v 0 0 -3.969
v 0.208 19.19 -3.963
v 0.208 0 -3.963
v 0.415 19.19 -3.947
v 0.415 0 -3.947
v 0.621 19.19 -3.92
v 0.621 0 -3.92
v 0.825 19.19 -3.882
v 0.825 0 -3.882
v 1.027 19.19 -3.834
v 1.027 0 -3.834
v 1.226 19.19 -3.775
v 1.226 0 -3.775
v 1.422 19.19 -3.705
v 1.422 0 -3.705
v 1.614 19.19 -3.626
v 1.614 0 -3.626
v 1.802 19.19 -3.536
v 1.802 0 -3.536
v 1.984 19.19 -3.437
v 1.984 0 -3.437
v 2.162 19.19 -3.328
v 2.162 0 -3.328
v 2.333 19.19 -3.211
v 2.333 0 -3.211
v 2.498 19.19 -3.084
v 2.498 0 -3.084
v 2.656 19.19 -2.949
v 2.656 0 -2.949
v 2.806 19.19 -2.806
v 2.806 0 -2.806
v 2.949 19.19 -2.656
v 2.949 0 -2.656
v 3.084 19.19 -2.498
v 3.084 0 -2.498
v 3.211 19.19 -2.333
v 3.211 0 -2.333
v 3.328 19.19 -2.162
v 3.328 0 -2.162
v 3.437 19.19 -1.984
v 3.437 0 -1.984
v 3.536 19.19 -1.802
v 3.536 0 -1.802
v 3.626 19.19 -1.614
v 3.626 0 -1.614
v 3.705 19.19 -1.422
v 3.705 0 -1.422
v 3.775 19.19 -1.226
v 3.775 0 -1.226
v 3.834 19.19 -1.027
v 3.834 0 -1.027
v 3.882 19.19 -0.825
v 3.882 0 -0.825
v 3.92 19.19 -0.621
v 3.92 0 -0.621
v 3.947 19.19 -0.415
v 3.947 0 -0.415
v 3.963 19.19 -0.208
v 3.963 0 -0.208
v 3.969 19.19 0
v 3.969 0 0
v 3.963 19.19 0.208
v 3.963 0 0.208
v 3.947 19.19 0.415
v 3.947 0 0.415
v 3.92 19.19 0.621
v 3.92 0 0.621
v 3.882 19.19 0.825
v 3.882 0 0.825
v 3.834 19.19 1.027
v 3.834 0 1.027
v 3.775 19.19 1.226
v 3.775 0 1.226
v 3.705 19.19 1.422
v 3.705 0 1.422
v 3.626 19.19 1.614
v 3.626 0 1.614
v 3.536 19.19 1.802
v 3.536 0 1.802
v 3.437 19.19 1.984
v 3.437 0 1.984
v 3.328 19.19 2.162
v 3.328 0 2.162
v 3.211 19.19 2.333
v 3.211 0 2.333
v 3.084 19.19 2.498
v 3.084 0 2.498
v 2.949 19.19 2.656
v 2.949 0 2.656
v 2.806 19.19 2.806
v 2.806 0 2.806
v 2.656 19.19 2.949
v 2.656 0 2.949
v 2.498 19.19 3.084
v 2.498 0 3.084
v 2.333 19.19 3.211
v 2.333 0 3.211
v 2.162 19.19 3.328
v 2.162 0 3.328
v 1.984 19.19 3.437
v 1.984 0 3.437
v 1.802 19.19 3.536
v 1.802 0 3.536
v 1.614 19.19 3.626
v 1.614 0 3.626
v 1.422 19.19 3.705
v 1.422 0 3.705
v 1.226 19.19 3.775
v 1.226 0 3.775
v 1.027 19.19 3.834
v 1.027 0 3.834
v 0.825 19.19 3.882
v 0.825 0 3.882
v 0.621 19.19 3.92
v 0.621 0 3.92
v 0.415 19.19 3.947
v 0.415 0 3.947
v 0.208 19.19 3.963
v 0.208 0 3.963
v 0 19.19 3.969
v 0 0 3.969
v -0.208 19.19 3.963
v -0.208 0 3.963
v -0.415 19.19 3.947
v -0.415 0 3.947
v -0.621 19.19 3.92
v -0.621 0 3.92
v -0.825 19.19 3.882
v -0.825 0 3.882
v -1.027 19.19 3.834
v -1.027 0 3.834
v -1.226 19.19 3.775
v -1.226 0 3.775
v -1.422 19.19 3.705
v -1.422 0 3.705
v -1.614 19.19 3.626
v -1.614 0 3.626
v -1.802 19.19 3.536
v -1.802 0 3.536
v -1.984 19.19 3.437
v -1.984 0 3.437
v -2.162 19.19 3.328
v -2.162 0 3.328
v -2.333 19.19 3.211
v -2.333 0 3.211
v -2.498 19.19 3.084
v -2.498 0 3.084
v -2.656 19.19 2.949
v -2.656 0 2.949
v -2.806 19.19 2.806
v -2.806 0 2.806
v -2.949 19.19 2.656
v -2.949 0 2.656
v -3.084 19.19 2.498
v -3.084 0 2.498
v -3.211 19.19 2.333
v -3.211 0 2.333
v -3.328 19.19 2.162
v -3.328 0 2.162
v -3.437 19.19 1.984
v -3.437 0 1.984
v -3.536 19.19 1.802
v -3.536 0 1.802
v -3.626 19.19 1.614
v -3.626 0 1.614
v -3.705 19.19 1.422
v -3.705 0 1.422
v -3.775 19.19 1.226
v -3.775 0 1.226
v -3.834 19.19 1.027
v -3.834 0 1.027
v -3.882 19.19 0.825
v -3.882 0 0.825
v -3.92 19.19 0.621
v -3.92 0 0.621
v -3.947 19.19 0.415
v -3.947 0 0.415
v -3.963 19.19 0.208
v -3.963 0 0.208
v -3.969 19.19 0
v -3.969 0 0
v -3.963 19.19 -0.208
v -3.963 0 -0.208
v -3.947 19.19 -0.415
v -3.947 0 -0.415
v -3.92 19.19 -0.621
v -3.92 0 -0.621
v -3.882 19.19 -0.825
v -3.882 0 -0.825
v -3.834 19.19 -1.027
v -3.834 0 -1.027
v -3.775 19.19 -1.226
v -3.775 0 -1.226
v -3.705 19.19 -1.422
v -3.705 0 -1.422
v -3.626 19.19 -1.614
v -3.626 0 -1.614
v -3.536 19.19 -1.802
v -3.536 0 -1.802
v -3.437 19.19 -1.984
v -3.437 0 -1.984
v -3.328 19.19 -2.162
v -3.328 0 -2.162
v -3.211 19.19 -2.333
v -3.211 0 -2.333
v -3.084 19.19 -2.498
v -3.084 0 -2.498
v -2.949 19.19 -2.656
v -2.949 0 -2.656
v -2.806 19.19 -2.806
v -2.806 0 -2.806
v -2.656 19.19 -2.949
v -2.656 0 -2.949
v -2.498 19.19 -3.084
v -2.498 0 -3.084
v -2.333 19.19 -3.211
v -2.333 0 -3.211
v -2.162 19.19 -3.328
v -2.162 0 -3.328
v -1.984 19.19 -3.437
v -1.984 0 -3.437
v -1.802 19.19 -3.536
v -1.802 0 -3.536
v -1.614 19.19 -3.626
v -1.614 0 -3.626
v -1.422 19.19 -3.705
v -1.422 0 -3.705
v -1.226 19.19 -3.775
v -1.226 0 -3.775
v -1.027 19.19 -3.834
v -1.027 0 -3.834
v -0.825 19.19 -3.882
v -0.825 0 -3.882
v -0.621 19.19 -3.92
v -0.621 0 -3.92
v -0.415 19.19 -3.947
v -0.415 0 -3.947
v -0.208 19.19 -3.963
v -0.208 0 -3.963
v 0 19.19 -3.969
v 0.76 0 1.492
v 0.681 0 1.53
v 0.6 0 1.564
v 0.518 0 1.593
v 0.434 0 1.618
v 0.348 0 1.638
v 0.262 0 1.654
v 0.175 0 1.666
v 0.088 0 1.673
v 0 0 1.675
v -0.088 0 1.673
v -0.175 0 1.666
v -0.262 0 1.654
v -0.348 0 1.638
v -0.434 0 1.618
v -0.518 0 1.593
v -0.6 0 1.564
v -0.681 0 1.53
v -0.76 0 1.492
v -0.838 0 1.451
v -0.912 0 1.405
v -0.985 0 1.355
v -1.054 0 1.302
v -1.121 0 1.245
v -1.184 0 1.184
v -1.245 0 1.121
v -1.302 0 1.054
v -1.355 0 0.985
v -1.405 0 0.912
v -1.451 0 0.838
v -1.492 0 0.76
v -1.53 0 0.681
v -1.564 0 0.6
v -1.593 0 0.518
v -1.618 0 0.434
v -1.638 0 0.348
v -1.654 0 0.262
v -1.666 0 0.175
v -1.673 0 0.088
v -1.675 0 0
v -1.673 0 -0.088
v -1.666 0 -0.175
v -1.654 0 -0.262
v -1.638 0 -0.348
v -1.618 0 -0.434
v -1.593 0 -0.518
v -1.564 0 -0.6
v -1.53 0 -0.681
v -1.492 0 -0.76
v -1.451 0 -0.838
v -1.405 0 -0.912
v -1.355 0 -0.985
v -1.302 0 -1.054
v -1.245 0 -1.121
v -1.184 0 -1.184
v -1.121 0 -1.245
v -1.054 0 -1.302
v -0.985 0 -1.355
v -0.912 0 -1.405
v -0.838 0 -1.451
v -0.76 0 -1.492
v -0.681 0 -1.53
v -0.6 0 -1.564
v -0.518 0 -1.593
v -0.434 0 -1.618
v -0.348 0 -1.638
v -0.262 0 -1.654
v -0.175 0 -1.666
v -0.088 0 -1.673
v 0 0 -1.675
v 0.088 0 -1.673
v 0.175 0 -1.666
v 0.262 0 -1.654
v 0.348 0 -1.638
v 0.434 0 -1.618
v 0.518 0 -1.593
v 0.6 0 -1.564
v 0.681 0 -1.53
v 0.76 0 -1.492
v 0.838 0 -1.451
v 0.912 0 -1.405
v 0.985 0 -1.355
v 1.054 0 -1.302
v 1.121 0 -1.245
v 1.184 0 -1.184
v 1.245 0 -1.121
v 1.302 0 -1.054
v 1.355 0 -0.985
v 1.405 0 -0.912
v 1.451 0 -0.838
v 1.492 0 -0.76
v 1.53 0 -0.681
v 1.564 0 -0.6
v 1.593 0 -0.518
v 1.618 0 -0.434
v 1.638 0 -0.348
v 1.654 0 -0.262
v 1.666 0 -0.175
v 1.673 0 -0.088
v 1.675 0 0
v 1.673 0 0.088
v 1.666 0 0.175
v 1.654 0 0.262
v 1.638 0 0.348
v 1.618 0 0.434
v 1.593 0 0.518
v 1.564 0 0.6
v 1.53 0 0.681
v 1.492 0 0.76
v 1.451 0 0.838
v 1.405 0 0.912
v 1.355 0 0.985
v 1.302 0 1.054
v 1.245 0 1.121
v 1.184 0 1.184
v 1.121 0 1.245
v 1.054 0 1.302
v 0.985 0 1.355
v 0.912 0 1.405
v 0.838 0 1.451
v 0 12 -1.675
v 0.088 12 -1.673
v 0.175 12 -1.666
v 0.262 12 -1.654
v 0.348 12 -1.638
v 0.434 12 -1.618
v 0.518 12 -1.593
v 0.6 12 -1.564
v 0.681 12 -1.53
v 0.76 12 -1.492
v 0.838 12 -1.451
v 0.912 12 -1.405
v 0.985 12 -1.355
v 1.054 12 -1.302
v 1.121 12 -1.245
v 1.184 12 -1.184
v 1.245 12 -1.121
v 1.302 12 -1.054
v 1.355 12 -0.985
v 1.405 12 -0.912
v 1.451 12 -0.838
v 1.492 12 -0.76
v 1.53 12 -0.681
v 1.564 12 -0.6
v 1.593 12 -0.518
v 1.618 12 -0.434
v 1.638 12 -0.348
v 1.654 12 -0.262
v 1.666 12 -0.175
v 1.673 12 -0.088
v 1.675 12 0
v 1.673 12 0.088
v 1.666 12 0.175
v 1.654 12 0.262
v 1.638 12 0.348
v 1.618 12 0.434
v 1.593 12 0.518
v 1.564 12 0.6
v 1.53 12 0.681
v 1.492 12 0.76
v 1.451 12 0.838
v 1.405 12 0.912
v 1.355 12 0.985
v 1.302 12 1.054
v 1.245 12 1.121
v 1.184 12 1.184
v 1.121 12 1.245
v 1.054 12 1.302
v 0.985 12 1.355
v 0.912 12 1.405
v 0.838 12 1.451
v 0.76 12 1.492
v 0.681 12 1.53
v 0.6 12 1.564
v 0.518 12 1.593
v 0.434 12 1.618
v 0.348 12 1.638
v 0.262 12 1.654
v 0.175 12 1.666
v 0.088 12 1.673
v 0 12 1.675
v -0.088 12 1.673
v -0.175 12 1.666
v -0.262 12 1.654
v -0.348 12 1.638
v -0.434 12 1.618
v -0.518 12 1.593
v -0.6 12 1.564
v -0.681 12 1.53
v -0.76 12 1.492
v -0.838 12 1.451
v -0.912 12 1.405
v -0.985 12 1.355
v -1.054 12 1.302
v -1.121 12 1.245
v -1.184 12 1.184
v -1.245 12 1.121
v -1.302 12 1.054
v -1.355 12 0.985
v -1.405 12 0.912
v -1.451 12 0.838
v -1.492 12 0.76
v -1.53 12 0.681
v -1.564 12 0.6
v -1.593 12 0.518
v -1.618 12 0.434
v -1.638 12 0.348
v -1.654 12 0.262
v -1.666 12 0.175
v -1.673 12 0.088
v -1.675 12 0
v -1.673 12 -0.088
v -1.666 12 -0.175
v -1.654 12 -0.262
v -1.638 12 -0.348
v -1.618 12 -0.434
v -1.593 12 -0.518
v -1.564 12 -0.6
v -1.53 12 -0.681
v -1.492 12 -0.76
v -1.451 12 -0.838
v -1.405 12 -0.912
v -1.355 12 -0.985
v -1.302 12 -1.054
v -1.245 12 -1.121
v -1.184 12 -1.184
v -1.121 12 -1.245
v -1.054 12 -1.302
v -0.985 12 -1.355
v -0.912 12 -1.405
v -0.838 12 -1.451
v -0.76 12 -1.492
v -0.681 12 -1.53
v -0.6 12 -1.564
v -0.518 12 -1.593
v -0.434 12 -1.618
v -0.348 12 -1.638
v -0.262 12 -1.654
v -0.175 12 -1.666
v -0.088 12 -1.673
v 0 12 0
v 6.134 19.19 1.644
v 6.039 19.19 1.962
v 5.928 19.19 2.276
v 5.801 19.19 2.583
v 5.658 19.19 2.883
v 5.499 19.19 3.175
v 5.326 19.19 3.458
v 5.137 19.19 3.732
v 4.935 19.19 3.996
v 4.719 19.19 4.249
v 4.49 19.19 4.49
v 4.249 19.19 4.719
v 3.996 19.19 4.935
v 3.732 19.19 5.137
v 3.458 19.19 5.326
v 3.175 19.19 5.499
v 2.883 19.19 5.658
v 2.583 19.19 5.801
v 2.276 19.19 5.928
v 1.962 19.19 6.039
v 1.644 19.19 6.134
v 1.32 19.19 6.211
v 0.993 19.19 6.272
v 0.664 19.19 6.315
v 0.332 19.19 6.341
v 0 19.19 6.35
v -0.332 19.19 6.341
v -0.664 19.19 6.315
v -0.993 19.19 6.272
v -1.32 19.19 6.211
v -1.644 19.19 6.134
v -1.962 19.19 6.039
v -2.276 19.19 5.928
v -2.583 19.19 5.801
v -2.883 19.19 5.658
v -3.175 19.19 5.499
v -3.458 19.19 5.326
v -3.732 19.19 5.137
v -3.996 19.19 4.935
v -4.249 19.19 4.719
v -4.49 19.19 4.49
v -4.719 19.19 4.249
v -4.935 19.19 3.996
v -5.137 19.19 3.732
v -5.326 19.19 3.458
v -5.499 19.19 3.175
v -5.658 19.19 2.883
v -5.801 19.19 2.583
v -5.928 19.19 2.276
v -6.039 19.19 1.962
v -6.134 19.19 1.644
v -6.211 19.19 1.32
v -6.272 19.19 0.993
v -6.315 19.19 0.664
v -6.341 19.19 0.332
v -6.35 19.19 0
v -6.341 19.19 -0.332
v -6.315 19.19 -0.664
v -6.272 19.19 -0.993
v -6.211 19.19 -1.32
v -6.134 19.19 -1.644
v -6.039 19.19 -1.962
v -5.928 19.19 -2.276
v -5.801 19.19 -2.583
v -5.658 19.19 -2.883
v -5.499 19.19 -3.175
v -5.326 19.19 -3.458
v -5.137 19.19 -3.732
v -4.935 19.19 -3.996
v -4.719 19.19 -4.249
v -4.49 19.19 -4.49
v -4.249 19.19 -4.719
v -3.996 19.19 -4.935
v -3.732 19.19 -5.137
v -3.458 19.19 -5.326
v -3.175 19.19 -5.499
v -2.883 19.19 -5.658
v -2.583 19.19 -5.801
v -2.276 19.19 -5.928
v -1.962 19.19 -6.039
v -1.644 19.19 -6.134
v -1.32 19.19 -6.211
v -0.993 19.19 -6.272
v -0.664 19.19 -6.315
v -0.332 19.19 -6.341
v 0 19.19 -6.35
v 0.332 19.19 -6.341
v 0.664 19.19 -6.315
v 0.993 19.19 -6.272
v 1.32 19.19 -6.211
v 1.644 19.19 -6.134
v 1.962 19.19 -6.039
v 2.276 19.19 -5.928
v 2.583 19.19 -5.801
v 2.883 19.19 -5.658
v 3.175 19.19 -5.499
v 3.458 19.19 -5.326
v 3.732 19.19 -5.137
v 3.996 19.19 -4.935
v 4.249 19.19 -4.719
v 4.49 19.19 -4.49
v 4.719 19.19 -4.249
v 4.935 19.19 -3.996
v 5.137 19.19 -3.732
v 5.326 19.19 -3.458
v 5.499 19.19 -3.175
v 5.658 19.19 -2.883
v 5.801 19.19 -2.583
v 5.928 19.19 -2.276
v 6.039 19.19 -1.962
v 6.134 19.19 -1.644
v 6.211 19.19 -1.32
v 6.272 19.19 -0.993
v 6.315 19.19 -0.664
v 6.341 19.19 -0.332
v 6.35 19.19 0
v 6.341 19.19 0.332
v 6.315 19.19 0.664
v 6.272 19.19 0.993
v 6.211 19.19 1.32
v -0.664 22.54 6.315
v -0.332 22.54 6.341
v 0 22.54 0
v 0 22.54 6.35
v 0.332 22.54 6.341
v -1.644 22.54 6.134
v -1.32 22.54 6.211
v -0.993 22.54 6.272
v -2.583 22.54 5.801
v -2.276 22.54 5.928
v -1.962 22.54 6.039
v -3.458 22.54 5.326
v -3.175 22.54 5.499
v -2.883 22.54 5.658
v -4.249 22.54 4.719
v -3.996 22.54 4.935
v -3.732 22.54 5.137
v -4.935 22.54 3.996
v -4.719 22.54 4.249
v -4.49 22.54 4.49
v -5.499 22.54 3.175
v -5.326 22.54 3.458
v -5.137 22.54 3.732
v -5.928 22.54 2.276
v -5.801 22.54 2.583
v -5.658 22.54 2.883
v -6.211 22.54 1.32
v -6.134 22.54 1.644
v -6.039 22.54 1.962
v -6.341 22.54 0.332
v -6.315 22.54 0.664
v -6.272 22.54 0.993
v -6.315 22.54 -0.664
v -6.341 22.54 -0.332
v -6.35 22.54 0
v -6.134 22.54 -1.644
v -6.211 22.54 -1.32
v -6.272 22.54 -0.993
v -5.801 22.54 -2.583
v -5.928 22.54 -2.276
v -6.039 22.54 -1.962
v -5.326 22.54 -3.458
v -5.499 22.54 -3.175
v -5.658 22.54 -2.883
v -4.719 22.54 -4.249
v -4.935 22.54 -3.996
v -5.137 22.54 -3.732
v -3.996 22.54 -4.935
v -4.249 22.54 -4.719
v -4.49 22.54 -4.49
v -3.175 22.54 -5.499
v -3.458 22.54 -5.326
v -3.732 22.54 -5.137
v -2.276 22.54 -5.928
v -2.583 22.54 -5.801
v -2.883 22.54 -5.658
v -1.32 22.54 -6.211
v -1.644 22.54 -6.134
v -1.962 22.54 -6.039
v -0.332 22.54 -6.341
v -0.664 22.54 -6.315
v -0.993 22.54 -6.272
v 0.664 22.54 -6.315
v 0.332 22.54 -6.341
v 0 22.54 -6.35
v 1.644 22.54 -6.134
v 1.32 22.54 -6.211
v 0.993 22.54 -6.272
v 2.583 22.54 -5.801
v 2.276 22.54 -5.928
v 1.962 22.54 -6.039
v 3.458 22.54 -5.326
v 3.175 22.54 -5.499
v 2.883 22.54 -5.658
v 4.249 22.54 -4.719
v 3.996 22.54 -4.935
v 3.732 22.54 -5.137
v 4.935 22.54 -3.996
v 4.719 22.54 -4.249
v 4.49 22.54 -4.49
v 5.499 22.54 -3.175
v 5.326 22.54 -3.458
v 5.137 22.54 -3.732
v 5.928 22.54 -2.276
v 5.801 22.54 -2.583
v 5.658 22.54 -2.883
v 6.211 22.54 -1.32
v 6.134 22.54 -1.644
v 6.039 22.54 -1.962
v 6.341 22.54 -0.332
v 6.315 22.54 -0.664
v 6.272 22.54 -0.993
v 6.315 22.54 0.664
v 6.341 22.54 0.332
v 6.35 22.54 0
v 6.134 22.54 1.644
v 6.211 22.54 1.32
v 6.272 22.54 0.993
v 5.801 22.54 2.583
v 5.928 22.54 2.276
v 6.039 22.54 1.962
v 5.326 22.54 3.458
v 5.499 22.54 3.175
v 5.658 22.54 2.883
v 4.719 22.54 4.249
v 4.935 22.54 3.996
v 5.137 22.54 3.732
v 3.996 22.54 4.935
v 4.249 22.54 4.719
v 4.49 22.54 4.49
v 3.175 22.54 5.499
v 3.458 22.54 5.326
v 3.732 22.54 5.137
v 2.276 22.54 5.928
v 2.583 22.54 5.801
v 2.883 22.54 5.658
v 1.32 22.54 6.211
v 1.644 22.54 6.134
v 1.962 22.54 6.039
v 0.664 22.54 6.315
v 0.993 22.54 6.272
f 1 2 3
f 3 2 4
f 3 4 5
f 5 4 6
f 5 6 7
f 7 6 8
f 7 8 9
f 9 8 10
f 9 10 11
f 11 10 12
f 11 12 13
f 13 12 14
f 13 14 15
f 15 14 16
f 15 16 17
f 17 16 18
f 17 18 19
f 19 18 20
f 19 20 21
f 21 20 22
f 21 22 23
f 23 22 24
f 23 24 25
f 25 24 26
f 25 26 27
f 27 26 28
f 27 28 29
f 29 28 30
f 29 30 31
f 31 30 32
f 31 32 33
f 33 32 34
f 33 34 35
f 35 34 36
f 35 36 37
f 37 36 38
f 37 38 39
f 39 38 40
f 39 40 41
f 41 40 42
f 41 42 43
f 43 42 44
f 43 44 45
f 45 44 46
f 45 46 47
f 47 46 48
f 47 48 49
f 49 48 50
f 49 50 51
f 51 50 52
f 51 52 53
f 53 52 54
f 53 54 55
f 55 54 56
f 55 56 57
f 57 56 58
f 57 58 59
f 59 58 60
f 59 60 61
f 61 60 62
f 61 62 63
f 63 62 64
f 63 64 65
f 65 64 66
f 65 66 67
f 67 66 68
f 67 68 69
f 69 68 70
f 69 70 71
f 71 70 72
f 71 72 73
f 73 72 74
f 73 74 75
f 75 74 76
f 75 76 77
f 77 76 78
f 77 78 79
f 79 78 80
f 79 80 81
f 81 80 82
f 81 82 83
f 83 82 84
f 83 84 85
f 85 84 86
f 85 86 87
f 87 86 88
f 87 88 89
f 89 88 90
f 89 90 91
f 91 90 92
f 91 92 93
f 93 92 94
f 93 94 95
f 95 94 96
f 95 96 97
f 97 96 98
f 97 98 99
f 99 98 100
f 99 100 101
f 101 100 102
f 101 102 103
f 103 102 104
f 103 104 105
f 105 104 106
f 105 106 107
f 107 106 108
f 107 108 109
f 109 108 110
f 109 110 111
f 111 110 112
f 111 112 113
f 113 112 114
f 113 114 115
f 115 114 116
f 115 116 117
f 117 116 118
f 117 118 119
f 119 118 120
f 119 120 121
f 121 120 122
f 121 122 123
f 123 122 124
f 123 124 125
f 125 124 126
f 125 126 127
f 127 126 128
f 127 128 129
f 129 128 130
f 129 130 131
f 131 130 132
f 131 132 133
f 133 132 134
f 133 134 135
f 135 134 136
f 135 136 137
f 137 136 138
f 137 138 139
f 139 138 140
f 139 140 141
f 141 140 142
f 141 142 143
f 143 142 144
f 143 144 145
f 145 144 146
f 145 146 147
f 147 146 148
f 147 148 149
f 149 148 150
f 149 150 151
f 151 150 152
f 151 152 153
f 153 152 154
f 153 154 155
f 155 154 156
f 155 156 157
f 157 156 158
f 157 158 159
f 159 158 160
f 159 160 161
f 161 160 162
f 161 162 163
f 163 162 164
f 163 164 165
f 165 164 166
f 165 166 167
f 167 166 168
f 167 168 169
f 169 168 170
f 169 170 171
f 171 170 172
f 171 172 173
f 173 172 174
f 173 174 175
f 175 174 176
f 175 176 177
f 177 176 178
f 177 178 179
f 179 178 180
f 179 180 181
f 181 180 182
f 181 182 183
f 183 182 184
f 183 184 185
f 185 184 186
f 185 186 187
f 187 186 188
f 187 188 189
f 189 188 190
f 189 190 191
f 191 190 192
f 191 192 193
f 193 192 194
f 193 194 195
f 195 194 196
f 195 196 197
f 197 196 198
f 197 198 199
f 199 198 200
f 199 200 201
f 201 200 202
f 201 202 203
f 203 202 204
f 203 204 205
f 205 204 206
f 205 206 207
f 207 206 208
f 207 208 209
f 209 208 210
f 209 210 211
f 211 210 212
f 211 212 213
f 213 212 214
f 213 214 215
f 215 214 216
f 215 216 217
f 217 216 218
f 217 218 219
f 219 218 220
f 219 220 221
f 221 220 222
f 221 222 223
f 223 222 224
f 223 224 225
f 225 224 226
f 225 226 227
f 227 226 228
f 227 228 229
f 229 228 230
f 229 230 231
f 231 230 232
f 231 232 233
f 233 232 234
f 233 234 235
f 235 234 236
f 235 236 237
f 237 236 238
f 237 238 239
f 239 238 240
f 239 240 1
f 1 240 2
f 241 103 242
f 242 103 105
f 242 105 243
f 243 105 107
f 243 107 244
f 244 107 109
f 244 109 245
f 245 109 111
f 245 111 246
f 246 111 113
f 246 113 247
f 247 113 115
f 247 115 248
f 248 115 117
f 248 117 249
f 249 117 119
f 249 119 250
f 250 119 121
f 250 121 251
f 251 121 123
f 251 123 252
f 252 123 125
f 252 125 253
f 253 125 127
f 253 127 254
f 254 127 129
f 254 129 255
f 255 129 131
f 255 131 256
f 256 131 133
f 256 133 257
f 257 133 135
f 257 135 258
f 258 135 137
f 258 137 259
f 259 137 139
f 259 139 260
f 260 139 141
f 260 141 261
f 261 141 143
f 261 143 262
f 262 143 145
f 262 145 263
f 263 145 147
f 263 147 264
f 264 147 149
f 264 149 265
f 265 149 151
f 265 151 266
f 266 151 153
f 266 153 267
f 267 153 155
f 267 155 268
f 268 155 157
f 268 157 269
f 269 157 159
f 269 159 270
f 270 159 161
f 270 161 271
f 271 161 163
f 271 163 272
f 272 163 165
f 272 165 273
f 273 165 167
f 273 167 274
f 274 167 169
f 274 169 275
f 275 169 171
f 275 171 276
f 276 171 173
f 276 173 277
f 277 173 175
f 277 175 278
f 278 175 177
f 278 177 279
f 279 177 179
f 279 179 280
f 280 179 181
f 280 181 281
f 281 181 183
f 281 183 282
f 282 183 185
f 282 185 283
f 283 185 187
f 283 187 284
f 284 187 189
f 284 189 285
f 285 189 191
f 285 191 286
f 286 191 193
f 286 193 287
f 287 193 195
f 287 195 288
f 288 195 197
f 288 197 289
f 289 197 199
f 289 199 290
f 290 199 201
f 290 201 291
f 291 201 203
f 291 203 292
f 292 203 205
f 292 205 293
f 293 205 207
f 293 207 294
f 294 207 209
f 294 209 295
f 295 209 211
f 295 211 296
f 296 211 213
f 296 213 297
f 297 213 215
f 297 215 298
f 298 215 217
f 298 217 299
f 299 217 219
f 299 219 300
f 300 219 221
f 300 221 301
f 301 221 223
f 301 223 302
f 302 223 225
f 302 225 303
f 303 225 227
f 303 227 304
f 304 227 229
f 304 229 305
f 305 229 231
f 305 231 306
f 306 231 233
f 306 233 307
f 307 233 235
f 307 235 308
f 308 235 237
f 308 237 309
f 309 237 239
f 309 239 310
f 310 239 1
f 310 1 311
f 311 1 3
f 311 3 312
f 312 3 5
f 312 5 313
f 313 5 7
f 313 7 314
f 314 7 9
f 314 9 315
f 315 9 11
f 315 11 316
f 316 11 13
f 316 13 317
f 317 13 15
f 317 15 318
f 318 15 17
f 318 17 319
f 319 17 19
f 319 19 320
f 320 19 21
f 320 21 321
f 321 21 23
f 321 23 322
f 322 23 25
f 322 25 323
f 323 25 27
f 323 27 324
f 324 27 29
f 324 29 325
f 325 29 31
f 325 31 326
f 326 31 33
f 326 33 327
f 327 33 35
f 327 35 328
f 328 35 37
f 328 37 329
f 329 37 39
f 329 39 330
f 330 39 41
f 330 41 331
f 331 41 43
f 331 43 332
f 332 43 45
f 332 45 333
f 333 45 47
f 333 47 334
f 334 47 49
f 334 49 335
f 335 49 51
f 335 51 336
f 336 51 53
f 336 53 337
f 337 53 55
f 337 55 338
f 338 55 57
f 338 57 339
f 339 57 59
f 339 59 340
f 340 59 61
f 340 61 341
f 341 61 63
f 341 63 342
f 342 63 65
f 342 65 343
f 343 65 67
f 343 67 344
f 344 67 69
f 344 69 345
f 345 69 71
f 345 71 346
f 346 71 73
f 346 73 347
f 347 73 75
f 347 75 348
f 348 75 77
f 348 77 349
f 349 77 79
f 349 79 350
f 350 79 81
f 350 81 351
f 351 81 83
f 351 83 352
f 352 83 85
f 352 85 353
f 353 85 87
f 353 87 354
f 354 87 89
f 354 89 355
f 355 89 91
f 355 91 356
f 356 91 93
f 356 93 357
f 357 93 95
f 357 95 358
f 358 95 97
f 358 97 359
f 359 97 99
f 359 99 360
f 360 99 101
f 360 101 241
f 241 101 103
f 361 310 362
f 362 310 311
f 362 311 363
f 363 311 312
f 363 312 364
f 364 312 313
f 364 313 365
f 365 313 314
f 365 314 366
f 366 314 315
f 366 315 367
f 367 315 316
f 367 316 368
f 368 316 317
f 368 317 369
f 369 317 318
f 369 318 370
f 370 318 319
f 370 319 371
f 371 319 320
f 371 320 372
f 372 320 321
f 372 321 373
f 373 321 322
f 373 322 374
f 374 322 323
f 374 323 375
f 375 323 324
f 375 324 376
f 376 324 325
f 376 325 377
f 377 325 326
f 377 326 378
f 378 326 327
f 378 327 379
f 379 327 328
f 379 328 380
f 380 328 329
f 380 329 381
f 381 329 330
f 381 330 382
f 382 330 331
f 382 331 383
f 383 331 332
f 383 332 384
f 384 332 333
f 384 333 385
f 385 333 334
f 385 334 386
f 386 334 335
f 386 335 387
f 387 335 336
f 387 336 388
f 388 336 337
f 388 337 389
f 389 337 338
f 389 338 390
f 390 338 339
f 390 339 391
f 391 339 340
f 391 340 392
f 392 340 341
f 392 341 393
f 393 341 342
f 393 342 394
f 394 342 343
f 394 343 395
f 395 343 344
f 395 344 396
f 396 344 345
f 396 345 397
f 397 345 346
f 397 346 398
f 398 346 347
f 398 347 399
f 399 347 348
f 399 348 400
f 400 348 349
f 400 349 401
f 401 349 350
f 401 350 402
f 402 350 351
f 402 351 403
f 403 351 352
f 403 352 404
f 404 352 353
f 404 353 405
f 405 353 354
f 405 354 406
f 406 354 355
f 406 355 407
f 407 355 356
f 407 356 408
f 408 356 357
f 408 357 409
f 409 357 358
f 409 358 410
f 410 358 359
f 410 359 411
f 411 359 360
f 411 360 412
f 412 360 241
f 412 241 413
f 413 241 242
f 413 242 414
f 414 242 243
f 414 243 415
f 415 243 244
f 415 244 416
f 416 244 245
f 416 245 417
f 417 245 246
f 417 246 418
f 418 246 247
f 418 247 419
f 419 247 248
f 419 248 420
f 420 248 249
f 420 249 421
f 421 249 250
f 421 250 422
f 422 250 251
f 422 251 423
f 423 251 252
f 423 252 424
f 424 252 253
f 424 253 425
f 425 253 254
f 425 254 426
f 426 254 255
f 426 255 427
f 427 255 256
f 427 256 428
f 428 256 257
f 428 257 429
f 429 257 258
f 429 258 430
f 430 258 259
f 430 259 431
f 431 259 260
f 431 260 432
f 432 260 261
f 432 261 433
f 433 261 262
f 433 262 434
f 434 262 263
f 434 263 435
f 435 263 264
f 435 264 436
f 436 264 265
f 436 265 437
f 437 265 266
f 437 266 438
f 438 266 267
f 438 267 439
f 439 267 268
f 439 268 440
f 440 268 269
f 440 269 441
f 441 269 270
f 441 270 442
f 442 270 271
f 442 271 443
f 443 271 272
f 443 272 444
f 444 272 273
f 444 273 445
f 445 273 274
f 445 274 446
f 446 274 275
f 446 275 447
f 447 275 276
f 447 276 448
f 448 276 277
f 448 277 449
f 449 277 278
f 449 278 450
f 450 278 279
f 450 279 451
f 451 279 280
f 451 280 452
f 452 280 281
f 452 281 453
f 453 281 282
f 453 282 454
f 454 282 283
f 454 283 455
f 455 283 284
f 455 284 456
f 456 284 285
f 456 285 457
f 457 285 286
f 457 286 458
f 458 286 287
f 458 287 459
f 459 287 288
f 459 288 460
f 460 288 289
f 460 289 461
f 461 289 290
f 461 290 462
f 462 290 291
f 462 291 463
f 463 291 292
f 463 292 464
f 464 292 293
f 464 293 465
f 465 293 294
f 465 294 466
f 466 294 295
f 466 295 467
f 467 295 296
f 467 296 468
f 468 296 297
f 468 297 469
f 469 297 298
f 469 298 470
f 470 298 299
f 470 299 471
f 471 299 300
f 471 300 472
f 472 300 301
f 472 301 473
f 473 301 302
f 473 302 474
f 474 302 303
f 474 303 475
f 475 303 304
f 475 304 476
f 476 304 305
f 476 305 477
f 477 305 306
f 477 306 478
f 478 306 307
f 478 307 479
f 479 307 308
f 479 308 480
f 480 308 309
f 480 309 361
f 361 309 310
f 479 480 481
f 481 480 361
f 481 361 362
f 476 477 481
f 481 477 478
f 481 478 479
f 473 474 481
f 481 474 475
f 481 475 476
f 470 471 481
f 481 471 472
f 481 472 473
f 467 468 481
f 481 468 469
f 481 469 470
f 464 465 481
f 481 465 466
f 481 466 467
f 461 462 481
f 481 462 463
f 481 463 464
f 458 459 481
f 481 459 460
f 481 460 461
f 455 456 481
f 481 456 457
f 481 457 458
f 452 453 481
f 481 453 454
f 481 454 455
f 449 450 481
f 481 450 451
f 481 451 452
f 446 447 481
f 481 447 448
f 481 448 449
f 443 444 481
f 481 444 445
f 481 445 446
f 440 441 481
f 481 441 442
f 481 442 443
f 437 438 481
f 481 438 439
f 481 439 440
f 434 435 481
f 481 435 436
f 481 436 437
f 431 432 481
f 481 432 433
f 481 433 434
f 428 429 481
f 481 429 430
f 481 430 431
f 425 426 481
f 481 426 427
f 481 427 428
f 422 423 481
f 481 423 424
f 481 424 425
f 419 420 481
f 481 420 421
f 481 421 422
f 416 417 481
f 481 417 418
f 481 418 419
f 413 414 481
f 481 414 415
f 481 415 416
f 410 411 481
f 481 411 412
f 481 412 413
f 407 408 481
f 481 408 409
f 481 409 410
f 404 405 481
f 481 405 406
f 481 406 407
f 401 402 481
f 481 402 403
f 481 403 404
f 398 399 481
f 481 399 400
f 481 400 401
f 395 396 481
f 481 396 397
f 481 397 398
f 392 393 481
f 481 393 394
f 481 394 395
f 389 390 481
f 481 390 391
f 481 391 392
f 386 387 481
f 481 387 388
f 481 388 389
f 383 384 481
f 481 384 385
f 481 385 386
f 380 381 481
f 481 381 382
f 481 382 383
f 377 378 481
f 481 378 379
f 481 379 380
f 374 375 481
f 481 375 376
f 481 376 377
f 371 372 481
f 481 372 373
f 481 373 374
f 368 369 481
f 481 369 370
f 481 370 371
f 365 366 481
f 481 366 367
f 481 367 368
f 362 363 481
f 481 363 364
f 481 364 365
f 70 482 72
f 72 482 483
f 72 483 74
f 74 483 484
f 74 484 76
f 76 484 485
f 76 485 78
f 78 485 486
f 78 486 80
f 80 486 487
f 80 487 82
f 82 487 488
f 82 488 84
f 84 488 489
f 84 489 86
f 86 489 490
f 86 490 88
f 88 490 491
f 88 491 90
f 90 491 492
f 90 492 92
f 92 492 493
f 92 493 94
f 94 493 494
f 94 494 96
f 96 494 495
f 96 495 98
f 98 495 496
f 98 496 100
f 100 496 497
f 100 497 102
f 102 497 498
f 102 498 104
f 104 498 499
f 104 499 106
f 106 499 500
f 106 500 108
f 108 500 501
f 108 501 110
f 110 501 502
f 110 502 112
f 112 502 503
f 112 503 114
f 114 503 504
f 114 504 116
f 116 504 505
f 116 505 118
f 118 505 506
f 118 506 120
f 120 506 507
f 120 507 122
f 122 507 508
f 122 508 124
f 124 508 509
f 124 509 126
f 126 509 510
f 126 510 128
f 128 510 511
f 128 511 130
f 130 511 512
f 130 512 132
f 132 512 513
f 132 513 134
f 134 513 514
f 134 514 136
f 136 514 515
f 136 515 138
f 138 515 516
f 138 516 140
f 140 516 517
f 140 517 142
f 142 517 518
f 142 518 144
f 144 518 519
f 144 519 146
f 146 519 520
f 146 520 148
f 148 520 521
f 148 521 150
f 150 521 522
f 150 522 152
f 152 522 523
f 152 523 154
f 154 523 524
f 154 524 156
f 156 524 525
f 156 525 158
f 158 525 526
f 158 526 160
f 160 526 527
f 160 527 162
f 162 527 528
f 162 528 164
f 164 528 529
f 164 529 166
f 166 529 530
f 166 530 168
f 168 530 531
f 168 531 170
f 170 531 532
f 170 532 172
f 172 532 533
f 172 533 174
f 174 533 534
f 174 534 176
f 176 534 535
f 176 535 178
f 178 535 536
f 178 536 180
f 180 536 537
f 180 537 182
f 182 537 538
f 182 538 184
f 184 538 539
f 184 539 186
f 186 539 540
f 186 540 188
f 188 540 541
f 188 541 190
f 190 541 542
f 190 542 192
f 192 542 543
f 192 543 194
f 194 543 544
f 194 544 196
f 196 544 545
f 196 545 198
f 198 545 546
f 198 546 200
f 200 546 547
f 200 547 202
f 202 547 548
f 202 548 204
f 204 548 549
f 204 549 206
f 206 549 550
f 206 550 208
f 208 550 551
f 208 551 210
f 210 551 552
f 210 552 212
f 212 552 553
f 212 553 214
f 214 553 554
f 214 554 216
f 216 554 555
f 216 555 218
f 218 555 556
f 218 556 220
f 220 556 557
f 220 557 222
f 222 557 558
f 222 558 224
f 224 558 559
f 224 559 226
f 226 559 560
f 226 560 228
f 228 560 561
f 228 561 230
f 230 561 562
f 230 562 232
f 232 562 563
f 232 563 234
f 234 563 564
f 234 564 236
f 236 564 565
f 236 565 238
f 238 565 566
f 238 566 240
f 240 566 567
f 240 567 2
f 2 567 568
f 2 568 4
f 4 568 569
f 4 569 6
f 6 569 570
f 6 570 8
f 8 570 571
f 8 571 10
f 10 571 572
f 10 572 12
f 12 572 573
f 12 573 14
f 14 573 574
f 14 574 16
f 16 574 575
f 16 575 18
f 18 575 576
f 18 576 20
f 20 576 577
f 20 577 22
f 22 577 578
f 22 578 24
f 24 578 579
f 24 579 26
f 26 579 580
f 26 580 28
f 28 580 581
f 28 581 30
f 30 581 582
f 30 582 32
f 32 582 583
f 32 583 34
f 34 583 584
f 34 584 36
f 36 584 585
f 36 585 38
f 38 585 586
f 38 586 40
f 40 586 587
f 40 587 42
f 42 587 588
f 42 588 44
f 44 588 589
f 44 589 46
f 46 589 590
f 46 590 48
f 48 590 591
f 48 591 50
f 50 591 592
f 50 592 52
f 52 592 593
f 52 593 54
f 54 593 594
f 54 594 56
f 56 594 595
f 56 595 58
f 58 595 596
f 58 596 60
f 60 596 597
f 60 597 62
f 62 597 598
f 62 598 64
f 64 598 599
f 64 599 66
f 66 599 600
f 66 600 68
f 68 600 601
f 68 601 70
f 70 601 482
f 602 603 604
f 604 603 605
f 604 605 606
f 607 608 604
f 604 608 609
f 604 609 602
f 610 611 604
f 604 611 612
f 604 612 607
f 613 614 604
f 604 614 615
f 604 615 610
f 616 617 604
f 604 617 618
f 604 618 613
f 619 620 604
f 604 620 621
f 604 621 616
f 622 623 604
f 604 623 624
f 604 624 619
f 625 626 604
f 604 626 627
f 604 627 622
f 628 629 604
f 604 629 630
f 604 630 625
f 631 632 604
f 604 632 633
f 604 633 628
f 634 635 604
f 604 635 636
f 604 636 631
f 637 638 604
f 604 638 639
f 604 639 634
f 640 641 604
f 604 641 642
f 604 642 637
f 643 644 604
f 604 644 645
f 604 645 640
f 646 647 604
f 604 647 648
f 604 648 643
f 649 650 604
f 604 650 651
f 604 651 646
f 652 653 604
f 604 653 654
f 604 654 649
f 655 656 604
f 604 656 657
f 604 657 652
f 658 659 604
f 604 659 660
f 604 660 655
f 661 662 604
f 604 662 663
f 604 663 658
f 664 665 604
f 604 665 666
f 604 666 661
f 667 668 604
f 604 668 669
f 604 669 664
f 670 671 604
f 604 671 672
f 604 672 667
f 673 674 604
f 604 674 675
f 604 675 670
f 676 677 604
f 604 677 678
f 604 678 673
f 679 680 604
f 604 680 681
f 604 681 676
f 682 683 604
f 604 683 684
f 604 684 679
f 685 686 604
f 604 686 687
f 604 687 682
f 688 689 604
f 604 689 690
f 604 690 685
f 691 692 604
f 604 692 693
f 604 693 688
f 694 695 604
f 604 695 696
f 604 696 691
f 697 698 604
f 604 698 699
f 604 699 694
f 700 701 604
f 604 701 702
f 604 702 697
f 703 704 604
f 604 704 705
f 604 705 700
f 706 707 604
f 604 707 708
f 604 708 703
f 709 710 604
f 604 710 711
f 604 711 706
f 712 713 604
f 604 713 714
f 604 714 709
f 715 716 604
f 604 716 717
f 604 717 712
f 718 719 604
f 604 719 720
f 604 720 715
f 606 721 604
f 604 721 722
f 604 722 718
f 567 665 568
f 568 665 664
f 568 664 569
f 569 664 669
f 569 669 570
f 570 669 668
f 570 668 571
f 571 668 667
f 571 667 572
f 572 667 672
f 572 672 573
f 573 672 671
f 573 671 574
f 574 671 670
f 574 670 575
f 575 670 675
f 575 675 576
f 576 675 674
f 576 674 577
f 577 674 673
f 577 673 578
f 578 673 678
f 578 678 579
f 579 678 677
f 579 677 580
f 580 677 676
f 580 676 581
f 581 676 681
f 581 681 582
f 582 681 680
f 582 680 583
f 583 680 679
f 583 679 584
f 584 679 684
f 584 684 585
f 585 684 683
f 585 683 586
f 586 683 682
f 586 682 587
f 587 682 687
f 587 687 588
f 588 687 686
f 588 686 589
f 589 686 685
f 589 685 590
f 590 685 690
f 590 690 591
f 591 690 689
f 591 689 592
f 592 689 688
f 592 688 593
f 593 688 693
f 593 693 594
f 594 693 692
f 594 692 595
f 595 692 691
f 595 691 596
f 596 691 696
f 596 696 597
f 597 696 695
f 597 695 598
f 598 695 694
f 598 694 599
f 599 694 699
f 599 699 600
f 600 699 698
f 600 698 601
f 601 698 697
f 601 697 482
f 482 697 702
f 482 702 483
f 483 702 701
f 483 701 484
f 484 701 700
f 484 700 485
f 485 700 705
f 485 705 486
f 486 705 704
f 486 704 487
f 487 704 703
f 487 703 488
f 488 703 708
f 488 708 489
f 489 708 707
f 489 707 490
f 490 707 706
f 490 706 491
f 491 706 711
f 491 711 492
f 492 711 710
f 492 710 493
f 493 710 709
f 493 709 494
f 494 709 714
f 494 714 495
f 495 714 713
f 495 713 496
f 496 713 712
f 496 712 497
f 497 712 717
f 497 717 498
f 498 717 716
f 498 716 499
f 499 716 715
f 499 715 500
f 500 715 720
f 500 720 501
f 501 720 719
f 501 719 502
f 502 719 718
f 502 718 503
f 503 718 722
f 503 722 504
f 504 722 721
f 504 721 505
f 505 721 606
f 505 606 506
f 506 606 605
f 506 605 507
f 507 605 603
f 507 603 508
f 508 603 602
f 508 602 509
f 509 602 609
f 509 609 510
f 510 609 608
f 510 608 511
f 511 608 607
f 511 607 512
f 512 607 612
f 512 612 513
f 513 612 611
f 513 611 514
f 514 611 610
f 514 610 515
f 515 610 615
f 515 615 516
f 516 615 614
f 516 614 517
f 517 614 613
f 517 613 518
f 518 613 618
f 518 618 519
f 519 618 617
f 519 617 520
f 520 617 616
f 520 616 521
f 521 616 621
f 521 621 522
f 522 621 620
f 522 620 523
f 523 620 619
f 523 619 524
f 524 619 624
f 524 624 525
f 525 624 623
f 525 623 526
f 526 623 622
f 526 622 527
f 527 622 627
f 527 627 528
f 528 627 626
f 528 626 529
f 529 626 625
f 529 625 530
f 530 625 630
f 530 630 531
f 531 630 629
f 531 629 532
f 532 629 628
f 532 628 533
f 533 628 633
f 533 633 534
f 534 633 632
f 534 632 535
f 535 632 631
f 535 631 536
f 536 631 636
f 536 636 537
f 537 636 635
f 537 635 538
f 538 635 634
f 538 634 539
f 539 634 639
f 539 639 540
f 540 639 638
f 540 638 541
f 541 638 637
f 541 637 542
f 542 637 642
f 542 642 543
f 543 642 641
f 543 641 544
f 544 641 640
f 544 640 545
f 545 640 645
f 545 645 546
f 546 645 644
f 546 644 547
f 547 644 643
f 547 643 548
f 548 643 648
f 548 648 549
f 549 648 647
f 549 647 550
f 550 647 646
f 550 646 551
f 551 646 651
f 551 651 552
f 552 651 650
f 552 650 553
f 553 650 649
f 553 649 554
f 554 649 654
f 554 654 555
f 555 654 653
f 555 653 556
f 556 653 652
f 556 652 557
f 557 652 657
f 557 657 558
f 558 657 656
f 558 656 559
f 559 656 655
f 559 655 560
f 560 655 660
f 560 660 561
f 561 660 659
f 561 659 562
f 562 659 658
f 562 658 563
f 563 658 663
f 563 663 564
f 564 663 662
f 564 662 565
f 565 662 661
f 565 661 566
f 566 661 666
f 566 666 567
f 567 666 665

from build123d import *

# Parameters (mm, degrees)
SKETCH1_R           = 3.96875
BOSS_EXTRUDE1_DEPTH = 20
SKETCH2_R           = 1.675
CUT_EXTRUDE1_DEPTH  = 12
SKETCH4_R           = 6.35
BOSS_EXTRUDE2_DEPTH = 2.54
SKETCH6_R           = 6.35
BOSS_EXTRUDE3_DEPTH = 3.35


with BuildPart() as part:
    # Sketch1 → Boss-Extrude1 (new body)
    with BuildSketch(Plane(origin=(0, 0, 0), x_dir=(1, 0, 0), z_dir=(0, 1, 0))):
        Circle(SKETCH1_R)
    extrude(amount=BOSS_EXTRUDE1_DEPTH)

    # Sketch2 → Cut-Extrude1 (cut)
    with BuildSketch(Plane.XZ):
        Circle(SKETCH2_R)
    extrude(amount=-CUT_EXTRUDE1_DEPTH, mode=Mode.SUBTRACT)

    # Sketch4 → Boss-Extrude2 (add)
    with BuildSketch(Plane(origin=(0, 20, 0), x_dir=(1, 0, 0), z_dir=(0, 1, 0))):
        Circle(SKETCH4_R)
    extrude(amount=BOSS_EXTRUDE2_DEPTH)

    # Sketch6 → Boss-Extrude3 (add)
    with BuildSketch(Plane(origin=(0, 22.54, 0), x_dir=(1, 0, 0), z_dir=(0, 1, 0))):
        Circle(SKETCH6_R)
    extrude(amount=-BOSS_EXTRUDE3_DEPTH)


solid = part.part
